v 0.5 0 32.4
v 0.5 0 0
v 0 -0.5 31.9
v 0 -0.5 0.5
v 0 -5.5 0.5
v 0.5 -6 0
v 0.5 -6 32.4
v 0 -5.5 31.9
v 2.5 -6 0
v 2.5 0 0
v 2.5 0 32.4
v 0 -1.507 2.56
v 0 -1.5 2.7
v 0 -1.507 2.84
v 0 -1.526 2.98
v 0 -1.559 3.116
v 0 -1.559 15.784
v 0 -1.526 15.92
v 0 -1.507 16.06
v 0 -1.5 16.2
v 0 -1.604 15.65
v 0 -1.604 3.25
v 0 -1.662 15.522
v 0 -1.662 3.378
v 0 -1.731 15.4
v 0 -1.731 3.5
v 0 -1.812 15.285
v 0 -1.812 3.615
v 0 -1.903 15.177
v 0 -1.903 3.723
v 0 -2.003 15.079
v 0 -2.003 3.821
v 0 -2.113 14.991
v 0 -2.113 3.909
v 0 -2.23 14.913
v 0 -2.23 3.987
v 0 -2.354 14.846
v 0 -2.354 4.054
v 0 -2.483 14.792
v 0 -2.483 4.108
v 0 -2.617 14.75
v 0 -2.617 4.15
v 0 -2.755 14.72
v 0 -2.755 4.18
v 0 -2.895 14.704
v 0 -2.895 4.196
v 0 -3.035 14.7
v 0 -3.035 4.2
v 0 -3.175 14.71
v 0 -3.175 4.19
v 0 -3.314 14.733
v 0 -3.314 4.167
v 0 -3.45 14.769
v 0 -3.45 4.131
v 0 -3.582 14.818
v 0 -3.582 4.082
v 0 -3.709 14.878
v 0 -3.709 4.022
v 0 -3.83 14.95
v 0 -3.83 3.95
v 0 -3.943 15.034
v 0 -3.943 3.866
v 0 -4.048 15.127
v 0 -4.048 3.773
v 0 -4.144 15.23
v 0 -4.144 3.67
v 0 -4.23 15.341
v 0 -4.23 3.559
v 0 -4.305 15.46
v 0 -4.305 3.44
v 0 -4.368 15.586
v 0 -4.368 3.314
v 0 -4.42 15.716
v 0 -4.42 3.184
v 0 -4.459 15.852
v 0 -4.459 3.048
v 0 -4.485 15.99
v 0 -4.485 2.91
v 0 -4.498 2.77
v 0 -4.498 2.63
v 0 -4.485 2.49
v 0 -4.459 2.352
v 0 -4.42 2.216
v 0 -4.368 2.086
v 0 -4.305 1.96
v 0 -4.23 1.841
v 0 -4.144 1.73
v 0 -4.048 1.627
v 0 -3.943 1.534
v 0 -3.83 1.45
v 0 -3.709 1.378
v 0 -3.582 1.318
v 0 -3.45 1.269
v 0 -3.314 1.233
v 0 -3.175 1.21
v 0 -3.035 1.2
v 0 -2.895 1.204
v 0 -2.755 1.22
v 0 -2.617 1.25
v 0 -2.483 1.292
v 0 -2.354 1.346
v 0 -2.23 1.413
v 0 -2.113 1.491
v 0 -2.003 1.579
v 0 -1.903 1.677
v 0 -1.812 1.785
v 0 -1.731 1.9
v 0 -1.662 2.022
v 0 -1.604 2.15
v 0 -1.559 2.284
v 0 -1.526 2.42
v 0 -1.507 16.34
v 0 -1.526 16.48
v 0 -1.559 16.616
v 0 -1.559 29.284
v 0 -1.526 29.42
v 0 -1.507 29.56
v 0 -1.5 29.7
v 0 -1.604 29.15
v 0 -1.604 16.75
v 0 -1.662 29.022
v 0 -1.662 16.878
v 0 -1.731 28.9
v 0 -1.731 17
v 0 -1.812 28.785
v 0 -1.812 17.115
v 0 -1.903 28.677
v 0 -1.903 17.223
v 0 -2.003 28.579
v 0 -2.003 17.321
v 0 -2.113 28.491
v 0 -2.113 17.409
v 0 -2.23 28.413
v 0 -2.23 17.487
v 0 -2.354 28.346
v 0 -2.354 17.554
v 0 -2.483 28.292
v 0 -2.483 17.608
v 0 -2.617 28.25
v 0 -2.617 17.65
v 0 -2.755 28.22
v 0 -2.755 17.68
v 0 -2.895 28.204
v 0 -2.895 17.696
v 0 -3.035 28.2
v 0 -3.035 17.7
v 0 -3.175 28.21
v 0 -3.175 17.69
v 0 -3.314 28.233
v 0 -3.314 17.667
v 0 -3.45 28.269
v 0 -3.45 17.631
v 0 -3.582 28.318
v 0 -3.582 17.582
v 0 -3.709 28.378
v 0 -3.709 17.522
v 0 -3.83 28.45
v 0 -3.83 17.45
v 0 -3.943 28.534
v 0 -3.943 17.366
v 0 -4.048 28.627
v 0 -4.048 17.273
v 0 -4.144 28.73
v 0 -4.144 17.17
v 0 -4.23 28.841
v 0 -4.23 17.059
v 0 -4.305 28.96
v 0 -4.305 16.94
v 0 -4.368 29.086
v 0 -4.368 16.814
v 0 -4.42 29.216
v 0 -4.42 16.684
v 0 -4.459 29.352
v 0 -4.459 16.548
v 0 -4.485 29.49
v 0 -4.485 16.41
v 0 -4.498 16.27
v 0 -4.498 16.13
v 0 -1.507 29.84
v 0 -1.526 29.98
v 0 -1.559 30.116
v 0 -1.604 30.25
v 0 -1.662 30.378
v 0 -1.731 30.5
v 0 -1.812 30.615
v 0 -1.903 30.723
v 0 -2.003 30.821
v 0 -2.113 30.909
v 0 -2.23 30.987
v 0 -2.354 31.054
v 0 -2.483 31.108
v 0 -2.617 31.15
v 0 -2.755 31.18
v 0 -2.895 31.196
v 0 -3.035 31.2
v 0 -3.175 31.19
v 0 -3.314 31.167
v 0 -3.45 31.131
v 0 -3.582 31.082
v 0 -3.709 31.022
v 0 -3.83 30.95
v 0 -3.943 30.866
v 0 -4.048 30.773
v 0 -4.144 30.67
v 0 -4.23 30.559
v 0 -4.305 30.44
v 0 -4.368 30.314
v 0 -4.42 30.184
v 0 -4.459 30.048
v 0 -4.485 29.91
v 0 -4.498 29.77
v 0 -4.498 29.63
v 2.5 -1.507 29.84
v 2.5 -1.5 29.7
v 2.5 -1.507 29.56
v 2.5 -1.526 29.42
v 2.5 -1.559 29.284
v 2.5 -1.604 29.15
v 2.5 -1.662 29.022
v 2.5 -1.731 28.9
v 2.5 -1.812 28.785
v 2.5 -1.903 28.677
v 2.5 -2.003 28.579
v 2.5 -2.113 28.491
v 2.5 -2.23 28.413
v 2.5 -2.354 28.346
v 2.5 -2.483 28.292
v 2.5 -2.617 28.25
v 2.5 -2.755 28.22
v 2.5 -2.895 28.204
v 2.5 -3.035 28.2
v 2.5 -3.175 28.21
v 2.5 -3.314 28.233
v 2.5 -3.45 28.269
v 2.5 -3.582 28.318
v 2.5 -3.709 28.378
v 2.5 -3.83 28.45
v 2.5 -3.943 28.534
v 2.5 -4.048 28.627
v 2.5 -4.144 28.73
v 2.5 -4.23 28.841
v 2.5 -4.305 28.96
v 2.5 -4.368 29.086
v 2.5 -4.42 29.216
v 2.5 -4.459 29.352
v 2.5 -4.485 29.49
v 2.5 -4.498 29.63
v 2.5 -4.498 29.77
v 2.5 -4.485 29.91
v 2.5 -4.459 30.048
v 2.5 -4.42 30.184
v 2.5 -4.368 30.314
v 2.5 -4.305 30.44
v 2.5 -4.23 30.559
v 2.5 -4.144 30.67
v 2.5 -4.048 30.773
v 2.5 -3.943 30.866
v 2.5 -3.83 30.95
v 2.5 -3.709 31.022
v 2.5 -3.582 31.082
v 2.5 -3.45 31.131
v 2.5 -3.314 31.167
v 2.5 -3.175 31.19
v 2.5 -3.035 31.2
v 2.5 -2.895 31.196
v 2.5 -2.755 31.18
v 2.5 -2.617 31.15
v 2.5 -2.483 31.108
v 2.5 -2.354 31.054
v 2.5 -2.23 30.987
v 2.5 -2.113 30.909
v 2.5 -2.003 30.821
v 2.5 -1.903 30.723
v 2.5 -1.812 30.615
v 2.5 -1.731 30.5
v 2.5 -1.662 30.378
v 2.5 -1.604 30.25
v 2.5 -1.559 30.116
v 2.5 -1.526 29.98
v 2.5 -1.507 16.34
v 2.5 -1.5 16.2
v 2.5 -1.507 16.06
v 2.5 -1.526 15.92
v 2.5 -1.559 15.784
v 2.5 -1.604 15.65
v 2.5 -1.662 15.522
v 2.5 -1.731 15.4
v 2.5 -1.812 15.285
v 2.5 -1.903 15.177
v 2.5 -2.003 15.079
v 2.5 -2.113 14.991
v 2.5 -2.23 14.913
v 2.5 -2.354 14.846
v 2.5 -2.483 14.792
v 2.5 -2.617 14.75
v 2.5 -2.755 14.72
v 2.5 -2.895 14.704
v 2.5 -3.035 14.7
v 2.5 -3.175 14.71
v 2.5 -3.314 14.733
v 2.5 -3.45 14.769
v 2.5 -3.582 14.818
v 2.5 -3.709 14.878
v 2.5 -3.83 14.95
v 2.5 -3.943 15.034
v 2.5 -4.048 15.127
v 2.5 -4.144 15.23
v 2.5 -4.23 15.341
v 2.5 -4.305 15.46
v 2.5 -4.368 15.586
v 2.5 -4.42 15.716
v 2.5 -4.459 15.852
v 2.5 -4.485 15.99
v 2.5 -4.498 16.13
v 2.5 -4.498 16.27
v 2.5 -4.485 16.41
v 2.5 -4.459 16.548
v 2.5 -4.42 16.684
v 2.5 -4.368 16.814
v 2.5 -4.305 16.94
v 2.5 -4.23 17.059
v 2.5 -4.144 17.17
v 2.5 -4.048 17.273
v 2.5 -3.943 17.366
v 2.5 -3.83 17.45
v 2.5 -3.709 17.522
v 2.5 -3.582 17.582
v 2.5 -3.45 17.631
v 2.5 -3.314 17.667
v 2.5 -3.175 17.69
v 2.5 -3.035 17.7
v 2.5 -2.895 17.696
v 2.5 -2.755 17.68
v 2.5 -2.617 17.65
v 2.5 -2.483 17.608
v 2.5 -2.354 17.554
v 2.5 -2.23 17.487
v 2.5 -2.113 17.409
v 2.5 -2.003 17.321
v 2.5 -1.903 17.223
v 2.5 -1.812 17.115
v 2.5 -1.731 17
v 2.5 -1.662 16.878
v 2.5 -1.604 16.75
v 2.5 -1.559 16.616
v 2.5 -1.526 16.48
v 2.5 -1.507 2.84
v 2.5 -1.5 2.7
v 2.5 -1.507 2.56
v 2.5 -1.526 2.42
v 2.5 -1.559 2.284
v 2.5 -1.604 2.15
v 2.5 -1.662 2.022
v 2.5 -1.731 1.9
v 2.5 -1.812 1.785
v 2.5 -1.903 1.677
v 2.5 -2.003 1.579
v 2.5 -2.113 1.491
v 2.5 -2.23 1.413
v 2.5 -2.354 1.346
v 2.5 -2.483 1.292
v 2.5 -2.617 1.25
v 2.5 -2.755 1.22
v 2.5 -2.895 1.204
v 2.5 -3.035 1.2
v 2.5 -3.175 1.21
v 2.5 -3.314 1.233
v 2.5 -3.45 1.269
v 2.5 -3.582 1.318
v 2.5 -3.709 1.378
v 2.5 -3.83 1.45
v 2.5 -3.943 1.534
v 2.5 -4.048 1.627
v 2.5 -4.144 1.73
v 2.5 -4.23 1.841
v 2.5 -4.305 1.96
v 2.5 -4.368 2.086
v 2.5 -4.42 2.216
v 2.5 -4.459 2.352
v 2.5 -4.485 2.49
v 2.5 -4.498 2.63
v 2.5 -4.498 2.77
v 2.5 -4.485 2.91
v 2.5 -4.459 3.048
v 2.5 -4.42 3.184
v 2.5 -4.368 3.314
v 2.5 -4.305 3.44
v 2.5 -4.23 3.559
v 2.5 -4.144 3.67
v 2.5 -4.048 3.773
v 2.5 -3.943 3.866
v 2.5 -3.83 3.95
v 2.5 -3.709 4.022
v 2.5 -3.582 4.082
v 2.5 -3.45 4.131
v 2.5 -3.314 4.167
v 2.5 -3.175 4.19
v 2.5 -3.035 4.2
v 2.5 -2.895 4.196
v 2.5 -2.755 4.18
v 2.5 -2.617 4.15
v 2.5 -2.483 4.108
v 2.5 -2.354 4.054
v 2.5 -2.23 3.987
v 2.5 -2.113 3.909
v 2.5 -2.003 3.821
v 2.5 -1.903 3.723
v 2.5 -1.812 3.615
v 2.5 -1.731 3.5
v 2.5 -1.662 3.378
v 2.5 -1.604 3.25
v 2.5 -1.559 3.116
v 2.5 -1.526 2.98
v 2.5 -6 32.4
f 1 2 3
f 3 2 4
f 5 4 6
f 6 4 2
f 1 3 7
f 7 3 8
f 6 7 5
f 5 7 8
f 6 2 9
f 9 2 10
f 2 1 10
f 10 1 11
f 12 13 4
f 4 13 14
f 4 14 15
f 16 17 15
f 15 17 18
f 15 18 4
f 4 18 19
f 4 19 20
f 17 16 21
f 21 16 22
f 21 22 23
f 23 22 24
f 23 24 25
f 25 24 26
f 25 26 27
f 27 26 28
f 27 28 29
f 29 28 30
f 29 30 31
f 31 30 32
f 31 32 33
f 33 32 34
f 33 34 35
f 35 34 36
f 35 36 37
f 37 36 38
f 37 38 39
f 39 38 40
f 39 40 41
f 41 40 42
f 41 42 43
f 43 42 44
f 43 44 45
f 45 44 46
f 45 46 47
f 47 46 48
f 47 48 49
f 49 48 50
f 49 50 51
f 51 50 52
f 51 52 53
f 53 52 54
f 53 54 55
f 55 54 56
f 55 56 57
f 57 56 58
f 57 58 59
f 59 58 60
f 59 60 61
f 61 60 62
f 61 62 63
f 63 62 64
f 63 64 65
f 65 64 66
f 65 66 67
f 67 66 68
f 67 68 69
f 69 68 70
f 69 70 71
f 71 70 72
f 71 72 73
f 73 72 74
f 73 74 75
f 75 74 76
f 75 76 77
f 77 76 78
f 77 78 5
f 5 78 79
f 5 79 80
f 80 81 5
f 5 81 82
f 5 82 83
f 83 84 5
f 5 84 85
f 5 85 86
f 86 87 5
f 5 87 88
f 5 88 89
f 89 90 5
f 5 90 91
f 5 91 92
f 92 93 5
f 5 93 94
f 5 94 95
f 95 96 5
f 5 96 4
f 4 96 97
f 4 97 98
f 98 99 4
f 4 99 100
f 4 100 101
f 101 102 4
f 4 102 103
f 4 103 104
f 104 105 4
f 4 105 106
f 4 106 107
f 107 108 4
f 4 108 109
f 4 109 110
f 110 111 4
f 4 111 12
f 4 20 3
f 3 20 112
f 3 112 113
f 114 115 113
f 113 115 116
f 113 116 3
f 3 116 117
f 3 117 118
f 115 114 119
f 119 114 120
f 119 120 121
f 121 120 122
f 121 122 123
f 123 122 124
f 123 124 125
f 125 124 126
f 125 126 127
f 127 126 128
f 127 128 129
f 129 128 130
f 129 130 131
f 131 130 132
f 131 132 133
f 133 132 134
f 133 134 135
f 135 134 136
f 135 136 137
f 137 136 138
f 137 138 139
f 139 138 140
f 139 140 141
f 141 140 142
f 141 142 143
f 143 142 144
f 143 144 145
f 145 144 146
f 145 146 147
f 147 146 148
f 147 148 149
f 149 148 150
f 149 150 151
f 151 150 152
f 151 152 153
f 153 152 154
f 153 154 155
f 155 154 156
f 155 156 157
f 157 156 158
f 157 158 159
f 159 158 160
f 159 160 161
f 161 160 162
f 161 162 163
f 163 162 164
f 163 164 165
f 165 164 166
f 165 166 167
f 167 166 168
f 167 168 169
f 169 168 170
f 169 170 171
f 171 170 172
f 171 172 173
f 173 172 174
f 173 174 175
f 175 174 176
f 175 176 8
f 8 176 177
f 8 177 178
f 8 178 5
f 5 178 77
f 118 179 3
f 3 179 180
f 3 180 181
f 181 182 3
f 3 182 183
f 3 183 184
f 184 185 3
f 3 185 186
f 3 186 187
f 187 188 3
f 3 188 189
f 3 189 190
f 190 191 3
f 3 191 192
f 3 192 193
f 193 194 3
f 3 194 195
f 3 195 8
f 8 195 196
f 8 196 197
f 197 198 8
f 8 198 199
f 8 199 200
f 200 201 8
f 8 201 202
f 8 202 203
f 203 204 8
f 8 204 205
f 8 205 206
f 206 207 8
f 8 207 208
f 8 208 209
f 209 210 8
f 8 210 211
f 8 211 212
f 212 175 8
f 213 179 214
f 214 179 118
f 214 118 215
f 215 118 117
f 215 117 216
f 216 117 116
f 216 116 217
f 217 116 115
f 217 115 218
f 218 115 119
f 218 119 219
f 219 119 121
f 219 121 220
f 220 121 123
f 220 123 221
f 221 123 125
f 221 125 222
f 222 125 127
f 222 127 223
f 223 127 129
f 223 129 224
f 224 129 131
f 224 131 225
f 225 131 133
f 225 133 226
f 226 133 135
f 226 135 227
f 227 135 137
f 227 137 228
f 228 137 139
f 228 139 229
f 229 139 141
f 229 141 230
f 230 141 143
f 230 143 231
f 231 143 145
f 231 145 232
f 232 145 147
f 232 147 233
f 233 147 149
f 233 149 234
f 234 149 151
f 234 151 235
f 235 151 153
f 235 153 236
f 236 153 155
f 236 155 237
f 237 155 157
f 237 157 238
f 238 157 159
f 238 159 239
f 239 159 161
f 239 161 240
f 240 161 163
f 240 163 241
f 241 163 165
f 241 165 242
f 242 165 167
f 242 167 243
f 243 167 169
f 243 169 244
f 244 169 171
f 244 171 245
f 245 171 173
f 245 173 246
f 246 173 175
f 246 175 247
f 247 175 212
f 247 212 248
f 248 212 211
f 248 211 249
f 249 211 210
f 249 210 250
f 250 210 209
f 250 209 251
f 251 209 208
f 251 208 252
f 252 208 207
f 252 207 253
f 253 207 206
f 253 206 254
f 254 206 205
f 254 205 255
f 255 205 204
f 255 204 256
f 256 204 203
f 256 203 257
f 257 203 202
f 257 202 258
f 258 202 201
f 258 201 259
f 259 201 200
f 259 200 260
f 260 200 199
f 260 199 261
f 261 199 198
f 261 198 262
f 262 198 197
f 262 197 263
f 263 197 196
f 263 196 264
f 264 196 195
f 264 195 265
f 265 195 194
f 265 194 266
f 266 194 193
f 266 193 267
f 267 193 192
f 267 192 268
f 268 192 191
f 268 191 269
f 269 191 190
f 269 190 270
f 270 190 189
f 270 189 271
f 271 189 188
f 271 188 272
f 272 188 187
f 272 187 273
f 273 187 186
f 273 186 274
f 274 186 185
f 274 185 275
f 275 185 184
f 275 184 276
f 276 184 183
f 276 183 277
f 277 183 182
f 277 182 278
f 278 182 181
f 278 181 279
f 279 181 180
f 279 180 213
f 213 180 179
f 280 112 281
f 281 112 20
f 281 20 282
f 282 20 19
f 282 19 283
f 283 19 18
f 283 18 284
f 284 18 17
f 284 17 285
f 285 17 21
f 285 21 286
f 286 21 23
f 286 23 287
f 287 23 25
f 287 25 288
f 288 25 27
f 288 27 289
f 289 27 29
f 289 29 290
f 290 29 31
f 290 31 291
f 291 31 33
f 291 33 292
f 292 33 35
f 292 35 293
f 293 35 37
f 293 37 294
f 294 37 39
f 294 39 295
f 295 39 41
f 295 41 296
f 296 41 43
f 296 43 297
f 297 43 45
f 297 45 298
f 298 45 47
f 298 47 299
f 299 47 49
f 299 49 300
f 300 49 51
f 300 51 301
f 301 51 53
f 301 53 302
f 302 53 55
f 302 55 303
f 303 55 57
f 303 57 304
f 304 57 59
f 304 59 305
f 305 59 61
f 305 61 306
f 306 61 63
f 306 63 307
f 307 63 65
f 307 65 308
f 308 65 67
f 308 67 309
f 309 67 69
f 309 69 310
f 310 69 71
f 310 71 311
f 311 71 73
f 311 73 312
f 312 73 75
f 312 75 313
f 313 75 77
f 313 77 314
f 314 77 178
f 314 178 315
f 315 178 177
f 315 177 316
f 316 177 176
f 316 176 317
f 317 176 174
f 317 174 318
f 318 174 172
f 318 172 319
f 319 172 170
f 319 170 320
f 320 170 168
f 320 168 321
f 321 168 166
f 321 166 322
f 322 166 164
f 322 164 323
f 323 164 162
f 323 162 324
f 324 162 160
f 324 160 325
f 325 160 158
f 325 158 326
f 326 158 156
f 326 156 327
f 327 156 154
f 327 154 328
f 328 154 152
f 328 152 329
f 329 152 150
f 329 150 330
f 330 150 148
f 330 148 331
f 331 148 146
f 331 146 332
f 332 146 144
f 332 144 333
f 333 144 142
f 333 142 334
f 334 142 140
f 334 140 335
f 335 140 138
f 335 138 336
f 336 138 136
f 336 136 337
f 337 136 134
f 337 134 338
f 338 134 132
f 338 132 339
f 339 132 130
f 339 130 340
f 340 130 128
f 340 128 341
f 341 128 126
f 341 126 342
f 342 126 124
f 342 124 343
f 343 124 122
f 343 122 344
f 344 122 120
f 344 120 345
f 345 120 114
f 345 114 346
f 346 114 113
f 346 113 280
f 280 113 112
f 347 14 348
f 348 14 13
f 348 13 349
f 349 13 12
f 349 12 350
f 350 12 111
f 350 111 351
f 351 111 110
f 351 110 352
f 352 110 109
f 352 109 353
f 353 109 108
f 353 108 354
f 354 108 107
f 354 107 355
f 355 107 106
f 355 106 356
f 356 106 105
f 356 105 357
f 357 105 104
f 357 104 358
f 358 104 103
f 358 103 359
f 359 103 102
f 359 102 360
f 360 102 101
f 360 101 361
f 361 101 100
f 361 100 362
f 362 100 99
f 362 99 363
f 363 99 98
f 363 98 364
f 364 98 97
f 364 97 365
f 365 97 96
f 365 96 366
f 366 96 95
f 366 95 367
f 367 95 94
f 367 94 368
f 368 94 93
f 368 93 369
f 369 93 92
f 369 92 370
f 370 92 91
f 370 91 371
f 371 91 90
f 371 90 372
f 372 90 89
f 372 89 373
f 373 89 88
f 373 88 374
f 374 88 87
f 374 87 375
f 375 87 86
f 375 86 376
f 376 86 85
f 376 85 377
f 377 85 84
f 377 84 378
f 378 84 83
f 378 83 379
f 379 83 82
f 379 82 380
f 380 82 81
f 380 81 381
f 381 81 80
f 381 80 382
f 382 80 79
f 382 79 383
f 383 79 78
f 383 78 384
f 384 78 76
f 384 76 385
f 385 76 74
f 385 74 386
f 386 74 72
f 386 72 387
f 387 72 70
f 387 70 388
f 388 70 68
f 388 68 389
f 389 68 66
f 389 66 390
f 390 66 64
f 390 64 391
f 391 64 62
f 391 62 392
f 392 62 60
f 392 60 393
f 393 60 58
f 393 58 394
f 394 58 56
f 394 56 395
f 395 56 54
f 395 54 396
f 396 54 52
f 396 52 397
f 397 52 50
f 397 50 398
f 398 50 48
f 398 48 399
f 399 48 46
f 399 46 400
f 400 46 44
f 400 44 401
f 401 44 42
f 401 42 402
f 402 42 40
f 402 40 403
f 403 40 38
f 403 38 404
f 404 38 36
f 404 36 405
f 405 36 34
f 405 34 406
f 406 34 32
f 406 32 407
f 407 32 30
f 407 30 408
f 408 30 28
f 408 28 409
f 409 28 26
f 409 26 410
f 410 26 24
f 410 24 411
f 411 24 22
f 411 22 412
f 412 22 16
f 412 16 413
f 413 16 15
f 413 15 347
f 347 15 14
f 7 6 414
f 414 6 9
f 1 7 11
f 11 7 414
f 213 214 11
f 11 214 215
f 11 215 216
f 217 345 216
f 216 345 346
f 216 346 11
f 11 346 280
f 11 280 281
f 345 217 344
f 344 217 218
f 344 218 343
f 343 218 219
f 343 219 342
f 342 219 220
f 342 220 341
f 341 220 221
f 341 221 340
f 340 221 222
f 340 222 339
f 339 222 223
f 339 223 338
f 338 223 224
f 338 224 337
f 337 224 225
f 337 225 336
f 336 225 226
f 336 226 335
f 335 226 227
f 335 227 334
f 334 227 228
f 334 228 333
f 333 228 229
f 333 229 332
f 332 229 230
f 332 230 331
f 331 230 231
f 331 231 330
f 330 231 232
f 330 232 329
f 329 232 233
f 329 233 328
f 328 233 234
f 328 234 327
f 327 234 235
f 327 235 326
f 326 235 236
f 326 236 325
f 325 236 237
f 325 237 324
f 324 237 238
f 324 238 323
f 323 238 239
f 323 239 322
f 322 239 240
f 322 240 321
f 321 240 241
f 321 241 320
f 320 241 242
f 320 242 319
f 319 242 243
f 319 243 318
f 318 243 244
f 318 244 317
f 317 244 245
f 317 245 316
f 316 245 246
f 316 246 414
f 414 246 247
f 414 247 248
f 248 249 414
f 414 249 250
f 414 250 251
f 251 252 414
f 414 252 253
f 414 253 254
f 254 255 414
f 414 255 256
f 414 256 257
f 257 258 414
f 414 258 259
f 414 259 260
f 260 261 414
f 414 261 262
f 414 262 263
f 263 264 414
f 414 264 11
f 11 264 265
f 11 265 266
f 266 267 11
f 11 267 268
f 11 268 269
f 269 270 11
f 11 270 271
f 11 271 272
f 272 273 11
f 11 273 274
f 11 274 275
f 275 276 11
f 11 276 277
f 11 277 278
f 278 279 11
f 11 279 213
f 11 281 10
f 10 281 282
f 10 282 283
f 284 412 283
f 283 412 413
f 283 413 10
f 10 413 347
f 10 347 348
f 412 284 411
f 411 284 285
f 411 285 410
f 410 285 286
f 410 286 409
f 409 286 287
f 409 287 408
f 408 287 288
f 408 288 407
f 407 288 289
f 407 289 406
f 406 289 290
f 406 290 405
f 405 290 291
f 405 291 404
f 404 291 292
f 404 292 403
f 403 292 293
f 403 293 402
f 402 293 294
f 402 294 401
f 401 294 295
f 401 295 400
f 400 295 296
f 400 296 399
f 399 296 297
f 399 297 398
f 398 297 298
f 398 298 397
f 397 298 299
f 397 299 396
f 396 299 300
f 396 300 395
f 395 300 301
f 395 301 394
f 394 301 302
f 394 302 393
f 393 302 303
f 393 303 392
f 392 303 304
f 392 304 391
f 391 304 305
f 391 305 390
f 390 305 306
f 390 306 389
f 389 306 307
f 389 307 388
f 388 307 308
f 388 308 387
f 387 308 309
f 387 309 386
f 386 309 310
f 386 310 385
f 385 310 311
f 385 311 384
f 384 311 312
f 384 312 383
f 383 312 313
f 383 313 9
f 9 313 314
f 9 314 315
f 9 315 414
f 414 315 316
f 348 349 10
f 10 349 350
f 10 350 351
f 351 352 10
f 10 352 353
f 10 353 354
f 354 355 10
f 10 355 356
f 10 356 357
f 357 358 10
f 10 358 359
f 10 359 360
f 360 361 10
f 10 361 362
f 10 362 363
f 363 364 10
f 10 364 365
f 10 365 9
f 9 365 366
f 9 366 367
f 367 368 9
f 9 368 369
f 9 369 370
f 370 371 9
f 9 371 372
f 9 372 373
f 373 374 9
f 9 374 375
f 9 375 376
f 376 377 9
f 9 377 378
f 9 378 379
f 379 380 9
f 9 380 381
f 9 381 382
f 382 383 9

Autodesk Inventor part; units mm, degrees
ref_plane "YZ Plane" through (0, 0, 0) normal (1, 0, 0) x (0, 1, 0)
ref_plane "XZ Plane" through (0, 0, 0) normal (0, 1, 0) x (-1, 0, 0)
ref_plane "XY Plane" through (0, 0, 0) normal (0, 0, 1) x (1, 0, 0)
sketch "스케치1" plane through (0, 0, 0) normal (1, 0, 0) x (0, 1, 0)
  line L0 (-6, 16.2) -> (-3, 16.2)
  line L1 (-3, 16.2) -> (0, 16.2)
  circle A0 centre (-3, 16.2) radius 1.5
  line L2 (-3, 16.2) -> (-3, 29.7)
  circle A1 centre (-3, 29.7) radius 1.5
  line L3 (-3, 16.2) -> (-3, 2.7)
  circle A2 centre (-3, 2.7) radius 1.5
  line L4 (-3, 29.7) -> (-3, 32.4)
  line L5 (-3, 32.4) -> (0, 32.4)
  line L6 (-3, 2.7) -> (-3, 0)
  line L7 (-3, 0) -> (0, 0)
  line L8 (0, 0) -> (0, 32.4)
  line L9 (-3, 32.4) -> (-6, 32.4)
  line L10 (-6, 0) -> (-3, 0)
  line L11 (-6, 0) -> (-6, 32.4)
  dimension "d0" = 3
  dimension "d1" = 3
  dimension "d2" = 3
  dimension "d3" = 13.5
  dimension "d4" = 3
  dimension "d5" = 13.5
  dimension "d6" = 3
  dimension "d7" = 2.7
  dimension "d8" = 2.7
extrude "돌출1" add sketch "스케치1" along normal blind 2.5 contours L11 L9 L4 A1 L2 A0 L0 | L0 A0 L3 A2 L6 L10 L11 | L2 A1 L4 L5 L8 L1 A0 | A0 L1 L8 L7 L6 A2 L3
chamfer "모따기1" distance 0.5 angle 45 4 edges at (0, 0, 16.2) (0, -1.5, 0) (0, -6, 16.2) (0, -4.5, 32.4)
properties part number "x 캐리지 벨트고정"
